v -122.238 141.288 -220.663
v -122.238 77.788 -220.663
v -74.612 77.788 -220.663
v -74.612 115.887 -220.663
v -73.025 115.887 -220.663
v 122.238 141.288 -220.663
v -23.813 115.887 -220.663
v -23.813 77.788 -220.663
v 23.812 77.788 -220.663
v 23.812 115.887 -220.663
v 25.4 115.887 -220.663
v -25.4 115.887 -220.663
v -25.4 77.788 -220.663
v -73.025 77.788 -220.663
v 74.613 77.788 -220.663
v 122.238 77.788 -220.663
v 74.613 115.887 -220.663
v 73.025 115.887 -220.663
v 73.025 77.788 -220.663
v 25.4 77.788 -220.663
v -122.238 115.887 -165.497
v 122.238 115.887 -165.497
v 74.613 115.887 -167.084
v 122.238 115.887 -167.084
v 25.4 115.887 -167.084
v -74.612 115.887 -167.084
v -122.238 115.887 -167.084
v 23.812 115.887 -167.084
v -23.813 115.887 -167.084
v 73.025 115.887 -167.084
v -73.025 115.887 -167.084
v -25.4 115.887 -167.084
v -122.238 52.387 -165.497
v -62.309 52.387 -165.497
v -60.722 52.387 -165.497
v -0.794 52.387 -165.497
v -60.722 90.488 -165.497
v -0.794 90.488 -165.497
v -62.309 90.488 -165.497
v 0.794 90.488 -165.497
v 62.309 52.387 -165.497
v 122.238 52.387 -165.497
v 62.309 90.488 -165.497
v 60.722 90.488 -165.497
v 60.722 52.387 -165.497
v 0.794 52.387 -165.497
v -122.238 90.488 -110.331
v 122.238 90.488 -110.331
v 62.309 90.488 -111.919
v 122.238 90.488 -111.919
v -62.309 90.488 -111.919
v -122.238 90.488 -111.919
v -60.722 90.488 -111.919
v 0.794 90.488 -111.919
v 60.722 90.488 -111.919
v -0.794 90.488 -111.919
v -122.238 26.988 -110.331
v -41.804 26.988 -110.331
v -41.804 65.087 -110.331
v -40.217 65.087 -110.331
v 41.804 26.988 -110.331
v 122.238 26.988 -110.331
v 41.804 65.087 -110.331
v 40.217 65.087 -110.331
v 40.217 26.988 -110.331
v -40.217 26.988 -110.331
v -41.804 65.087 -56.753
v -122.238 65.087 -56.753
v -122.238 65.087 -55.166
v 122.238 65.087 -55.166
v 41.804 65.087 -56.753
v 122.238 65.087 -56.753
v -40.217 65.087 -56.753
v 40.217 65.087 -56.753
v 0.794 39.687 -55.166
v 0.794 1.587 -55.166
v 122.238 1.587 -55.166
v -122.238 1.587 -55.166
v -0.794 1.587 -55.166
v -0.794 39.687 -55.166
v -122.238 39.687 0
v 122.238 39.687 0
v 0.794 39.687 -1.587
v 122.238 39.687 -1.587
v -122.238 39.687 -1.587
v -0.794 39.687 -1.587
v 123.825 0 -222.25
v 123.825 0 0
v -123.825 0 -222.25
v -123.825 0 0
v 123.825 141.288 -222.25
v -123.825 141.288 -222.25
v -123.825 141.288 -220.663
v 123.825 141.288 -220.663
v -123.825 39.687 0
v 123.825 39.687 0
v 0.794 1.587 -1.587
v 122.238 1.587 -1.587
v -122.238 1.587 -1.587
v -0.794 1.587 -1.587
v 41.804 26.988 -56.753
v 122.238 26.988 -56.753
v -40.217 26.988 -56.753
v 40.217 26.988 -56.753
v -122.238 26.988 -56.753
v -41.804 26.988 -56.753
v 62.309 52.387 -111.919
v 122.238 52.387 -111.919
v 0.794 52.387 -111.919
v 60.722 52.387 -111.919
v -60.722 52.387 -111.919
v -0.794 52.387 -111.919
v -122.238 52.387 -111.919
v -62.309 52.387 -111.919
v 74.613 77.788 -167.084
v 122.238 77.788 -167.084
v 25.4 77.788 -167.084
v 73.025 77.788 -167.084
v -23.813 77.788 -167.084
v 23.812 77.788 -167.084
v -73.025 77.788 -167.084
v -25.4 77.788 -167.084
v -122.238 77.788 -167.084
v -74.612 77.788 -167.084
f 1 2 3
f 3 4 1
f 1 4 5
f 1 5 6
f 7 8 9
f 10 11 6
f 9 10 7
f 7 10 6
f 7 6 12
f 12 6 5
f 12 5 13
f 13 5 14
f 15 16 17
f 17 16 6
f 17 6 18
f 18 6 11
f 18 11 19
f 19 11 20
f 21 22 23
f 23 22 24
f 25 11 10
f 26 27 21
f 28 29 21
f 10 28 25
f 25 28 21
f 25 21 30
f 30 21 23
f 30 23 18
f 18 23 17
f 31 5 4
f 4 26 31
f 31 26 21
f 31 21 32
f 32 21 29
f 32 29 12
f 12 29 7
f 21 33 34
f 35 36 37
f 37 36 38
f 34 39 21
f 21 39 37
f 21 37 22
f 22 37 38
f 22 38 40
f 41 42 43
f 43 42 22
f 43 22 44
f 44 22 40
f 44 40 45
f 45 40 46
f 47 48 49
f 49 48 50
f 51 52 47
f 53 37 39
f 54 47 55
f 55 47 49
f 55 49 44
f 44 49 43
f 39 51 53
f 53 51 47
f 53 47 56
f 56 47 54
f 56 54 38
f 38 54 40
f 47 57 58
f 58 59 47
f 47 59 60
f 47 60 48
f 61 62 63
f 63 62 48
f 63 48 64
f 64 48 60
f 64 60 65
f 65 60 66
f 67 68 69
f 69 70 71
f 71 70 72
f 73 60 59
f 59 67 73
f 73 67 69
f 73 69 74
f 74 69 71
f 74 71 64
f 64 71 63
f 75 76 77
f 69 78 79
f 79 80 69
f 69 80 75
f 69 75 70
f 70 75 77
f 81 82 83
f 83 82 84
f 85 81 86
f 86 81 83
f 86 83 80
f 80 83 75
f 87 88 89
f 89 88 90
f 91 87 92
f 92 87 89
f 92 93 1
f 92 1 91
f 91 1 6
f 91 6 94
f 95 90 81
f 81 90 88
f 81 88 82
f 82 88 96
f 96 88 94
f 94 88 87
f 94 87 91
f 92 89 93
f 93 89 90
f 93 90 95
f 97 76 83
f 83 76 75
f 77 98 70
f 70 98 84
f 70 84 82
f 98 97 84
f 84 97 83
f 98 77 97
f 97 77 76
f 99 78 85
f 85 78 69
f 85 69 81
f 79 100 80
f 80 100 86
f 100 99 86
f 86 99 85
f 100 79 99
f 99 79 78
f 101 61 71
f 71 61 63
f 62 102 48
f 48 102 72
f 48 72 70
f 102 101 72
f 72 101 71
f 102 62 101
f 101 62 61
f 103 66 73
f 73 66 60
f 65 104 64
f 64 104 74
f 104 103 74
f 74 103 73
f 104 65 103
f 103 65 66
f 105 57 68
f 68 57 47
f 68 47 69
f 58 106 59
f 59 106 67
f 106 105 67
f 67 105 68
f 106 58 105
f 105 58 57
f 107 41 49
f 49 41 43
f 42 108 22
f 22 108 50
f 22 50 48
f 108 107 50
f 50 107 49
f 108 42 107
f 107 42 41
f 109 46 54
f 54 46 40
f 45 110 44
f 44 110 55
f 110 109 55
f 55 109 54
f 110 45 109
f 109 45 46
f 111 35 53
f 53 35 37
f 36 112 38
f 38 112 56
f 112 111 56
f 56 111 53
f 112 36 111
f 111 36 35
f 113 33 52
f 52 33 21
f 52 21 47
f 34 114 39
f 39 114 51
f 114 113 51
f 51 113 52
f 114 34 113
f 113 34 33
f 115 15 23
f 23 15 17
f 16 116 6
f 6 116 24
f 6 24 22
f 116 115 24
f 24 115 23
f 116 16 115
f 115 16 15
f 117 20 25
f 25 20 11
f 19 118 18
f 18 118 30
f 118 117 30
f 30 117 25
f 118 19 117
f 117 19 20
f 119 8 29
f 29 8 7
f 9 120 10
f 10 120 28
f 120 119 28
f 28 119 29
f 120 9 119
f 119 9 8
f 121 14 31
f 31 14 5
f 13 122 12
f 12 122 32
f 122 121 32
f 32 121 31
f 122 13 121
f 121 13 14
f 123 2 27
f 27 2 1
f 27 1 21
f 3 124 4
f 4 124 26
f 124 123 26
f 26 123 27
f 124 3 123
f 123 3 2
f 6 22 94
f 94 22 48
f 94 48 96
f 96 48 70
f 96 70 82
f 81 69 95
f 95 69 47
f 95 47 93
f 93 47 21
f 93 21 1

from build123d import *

# Parameters (mm, degrees)
BOSS_EXTRUDE1_DEPTH = 123.825
SKETCH3_W           = 121.44375
SKETCH3_H           = 53.578125
CUT_EXTRUDE1_DEPTH  = 38.1
SKETCH4_W           = 80.433333333
SKETCH4_H           = 53.578125
SKETCH4_W_2         = 80.433333334
CUT_EXTRUDE2_DEPTH  = 38.1
SKETCH5_W           = 59.928125
SKETCH5_H           = 53.578125
CUT_EXTRUDE3_DEPTH  = 38.1
SKETCH6_W           = 47.625
SKETCH6_H           = 53.578125
CUT_EXTRUDE4_DEPTH  = 38.1
BOSS_EXTRUDE2_DEPTH = 1.5875


with BuildPart() as part:
    # Sketch1 → Boss-Extrude1 (new, symmetric)
    with BuildSketch(Plane(origin=(0, 0, 0), x_dir=(0, 0, -1), z_dir=(1, 0, 0))):
        Polygon((0, 0), (222.25, 0), (222.25, 115.8875), (222.25, 141.2875), (220.6625, 141.2875), (220.6625, 115.8875), (165.496875, 115.8875), (165.496875, 90.4875), (110.33125, 90.4875), (110.33125, 65.0875), (55.165625, 65.0875), (55.165625, 39.6875), (0, 39.6875), (0, 14.2875), align=None)
    extrude(amount=BOSS_EXTRUDE1_DEPTH, both=True)

    # Sketch3 → Cut-Extrude1 (cut)
    with BuildSketch(Plane(origin=(0, 39.6875, 0), x_dir=(1, 0, 0), z_dir=(0, 1, 0))):
        with Locations((-61.515625, 28.3765625)):
            Rectangle(SKETCH3_W, SKETCH3_H)
        with Locations((61.515625, 28.3765625)):
            Rectangle(SKETCH3_W, SKETCH3_H)
    extrude(amount=-CUT_EXTRUDE1_DEPTH, mode=Mode.SUBTRACT)

    # Sketch4 → Cut-Extrude2 (cut)
    with BuildSketch(Plane(origin=(0, 65.0875, 0), x_dir=(1, 0, 0), z_dir=(0, 1, 0))):
        with Locations((-82.020833334, 83.5421875)):
            Rectangle(SKETCH4_W, SKETCH4_H)
        with Locations((0, 83.5421875)):
            Rectangle(SKETCH4_W_2, SKETCH4_H)
        with Locations((82.020833334, 83.5421875)):
            Rectangle(SKETCH4_W, SKETCH4_H)
    extrude(amount=-CUT_EXTRUDE2_DEPTH, mode=Mode.SUBTRACT)

    # Sketch5 → Cut-Extrude3 (cut)
    with BuildSketch(Plane(origin=(0, 90.4875, 0), x_dir=(1, 0, 0), z_dir=(0, 1, 0))):
        with Locations((-92.2734375, 138.7078125)):
            Rectangle(SKETCH5_W, SKETCH5_H)
        with Locations((-30.7578125, 138.7078125)):
            Rectangle(SKETCH5_W, SKETCH5_H)
        with Locations((30.7578125, 138.7078125)):
            Rectangle(SKETCH5_W, SKETCH5_H)
        with Locations((92.2734375, 138.7078125)):
            Rectangle(SKETCH5_W, SKETCH5_H)
    extrude(amount=-CUT_EXTRUDE3_DEPTH, mode=Mode.SUBTRACT)

    # Sketch6 → Cut-Extrude4 (cut)
    with BuildSketch(Plane(origin=(0, 115.8875, 0), x_dir=(1, 0, 0), z_dir=(0, 1, 0))):
        with Locations((-98.425, 193.8734375)):
            Rectangle(SKETCH6_W, SKETCH6_H)
        with Locations((-49.2125, 193.8734375)):
            Rectangle(SKETCH6_W, SKETCH6_H)
        with Locations((0, 193.8734375)):
            Rectangle(SKETCH6_W, SKETCH6_H)
        with Locations((49.2125, 193.8734375)):
            Rectangle(SKETCH6_W, SKETCH6_H)
        with Locations((98.425, 193.8734375)):
            Rectangle(SKETCH6_W, SKETCH6_H)
    extrude(amount=-CUT_EXTRUDE4_DEPTH, mode=Mode.SUBTRACT)

    # Sketch7 → Boss-Extrude2 (add)
    with BuildSketch(Plane(origin=(123.825, 0, 0), x_dir=(0, 0, -1), z_dir=(1, 0, 0))):
        Polygon((0, 39.6875), (220.6625, 141.2875), (220.6625, 39.6875), align=None)
    boss_extrude2 = extrude(amount=-BOSS_EXTRUDE2_DEPTH)

    # Mirror1: Boss-Extrude2 across plane
    add(boss_extrude2.mirror(Plane(origin=(0, 0, 0), x_dir=(0, 0, 1), z_dir=(1, 0, 0))))


solid = part.part
